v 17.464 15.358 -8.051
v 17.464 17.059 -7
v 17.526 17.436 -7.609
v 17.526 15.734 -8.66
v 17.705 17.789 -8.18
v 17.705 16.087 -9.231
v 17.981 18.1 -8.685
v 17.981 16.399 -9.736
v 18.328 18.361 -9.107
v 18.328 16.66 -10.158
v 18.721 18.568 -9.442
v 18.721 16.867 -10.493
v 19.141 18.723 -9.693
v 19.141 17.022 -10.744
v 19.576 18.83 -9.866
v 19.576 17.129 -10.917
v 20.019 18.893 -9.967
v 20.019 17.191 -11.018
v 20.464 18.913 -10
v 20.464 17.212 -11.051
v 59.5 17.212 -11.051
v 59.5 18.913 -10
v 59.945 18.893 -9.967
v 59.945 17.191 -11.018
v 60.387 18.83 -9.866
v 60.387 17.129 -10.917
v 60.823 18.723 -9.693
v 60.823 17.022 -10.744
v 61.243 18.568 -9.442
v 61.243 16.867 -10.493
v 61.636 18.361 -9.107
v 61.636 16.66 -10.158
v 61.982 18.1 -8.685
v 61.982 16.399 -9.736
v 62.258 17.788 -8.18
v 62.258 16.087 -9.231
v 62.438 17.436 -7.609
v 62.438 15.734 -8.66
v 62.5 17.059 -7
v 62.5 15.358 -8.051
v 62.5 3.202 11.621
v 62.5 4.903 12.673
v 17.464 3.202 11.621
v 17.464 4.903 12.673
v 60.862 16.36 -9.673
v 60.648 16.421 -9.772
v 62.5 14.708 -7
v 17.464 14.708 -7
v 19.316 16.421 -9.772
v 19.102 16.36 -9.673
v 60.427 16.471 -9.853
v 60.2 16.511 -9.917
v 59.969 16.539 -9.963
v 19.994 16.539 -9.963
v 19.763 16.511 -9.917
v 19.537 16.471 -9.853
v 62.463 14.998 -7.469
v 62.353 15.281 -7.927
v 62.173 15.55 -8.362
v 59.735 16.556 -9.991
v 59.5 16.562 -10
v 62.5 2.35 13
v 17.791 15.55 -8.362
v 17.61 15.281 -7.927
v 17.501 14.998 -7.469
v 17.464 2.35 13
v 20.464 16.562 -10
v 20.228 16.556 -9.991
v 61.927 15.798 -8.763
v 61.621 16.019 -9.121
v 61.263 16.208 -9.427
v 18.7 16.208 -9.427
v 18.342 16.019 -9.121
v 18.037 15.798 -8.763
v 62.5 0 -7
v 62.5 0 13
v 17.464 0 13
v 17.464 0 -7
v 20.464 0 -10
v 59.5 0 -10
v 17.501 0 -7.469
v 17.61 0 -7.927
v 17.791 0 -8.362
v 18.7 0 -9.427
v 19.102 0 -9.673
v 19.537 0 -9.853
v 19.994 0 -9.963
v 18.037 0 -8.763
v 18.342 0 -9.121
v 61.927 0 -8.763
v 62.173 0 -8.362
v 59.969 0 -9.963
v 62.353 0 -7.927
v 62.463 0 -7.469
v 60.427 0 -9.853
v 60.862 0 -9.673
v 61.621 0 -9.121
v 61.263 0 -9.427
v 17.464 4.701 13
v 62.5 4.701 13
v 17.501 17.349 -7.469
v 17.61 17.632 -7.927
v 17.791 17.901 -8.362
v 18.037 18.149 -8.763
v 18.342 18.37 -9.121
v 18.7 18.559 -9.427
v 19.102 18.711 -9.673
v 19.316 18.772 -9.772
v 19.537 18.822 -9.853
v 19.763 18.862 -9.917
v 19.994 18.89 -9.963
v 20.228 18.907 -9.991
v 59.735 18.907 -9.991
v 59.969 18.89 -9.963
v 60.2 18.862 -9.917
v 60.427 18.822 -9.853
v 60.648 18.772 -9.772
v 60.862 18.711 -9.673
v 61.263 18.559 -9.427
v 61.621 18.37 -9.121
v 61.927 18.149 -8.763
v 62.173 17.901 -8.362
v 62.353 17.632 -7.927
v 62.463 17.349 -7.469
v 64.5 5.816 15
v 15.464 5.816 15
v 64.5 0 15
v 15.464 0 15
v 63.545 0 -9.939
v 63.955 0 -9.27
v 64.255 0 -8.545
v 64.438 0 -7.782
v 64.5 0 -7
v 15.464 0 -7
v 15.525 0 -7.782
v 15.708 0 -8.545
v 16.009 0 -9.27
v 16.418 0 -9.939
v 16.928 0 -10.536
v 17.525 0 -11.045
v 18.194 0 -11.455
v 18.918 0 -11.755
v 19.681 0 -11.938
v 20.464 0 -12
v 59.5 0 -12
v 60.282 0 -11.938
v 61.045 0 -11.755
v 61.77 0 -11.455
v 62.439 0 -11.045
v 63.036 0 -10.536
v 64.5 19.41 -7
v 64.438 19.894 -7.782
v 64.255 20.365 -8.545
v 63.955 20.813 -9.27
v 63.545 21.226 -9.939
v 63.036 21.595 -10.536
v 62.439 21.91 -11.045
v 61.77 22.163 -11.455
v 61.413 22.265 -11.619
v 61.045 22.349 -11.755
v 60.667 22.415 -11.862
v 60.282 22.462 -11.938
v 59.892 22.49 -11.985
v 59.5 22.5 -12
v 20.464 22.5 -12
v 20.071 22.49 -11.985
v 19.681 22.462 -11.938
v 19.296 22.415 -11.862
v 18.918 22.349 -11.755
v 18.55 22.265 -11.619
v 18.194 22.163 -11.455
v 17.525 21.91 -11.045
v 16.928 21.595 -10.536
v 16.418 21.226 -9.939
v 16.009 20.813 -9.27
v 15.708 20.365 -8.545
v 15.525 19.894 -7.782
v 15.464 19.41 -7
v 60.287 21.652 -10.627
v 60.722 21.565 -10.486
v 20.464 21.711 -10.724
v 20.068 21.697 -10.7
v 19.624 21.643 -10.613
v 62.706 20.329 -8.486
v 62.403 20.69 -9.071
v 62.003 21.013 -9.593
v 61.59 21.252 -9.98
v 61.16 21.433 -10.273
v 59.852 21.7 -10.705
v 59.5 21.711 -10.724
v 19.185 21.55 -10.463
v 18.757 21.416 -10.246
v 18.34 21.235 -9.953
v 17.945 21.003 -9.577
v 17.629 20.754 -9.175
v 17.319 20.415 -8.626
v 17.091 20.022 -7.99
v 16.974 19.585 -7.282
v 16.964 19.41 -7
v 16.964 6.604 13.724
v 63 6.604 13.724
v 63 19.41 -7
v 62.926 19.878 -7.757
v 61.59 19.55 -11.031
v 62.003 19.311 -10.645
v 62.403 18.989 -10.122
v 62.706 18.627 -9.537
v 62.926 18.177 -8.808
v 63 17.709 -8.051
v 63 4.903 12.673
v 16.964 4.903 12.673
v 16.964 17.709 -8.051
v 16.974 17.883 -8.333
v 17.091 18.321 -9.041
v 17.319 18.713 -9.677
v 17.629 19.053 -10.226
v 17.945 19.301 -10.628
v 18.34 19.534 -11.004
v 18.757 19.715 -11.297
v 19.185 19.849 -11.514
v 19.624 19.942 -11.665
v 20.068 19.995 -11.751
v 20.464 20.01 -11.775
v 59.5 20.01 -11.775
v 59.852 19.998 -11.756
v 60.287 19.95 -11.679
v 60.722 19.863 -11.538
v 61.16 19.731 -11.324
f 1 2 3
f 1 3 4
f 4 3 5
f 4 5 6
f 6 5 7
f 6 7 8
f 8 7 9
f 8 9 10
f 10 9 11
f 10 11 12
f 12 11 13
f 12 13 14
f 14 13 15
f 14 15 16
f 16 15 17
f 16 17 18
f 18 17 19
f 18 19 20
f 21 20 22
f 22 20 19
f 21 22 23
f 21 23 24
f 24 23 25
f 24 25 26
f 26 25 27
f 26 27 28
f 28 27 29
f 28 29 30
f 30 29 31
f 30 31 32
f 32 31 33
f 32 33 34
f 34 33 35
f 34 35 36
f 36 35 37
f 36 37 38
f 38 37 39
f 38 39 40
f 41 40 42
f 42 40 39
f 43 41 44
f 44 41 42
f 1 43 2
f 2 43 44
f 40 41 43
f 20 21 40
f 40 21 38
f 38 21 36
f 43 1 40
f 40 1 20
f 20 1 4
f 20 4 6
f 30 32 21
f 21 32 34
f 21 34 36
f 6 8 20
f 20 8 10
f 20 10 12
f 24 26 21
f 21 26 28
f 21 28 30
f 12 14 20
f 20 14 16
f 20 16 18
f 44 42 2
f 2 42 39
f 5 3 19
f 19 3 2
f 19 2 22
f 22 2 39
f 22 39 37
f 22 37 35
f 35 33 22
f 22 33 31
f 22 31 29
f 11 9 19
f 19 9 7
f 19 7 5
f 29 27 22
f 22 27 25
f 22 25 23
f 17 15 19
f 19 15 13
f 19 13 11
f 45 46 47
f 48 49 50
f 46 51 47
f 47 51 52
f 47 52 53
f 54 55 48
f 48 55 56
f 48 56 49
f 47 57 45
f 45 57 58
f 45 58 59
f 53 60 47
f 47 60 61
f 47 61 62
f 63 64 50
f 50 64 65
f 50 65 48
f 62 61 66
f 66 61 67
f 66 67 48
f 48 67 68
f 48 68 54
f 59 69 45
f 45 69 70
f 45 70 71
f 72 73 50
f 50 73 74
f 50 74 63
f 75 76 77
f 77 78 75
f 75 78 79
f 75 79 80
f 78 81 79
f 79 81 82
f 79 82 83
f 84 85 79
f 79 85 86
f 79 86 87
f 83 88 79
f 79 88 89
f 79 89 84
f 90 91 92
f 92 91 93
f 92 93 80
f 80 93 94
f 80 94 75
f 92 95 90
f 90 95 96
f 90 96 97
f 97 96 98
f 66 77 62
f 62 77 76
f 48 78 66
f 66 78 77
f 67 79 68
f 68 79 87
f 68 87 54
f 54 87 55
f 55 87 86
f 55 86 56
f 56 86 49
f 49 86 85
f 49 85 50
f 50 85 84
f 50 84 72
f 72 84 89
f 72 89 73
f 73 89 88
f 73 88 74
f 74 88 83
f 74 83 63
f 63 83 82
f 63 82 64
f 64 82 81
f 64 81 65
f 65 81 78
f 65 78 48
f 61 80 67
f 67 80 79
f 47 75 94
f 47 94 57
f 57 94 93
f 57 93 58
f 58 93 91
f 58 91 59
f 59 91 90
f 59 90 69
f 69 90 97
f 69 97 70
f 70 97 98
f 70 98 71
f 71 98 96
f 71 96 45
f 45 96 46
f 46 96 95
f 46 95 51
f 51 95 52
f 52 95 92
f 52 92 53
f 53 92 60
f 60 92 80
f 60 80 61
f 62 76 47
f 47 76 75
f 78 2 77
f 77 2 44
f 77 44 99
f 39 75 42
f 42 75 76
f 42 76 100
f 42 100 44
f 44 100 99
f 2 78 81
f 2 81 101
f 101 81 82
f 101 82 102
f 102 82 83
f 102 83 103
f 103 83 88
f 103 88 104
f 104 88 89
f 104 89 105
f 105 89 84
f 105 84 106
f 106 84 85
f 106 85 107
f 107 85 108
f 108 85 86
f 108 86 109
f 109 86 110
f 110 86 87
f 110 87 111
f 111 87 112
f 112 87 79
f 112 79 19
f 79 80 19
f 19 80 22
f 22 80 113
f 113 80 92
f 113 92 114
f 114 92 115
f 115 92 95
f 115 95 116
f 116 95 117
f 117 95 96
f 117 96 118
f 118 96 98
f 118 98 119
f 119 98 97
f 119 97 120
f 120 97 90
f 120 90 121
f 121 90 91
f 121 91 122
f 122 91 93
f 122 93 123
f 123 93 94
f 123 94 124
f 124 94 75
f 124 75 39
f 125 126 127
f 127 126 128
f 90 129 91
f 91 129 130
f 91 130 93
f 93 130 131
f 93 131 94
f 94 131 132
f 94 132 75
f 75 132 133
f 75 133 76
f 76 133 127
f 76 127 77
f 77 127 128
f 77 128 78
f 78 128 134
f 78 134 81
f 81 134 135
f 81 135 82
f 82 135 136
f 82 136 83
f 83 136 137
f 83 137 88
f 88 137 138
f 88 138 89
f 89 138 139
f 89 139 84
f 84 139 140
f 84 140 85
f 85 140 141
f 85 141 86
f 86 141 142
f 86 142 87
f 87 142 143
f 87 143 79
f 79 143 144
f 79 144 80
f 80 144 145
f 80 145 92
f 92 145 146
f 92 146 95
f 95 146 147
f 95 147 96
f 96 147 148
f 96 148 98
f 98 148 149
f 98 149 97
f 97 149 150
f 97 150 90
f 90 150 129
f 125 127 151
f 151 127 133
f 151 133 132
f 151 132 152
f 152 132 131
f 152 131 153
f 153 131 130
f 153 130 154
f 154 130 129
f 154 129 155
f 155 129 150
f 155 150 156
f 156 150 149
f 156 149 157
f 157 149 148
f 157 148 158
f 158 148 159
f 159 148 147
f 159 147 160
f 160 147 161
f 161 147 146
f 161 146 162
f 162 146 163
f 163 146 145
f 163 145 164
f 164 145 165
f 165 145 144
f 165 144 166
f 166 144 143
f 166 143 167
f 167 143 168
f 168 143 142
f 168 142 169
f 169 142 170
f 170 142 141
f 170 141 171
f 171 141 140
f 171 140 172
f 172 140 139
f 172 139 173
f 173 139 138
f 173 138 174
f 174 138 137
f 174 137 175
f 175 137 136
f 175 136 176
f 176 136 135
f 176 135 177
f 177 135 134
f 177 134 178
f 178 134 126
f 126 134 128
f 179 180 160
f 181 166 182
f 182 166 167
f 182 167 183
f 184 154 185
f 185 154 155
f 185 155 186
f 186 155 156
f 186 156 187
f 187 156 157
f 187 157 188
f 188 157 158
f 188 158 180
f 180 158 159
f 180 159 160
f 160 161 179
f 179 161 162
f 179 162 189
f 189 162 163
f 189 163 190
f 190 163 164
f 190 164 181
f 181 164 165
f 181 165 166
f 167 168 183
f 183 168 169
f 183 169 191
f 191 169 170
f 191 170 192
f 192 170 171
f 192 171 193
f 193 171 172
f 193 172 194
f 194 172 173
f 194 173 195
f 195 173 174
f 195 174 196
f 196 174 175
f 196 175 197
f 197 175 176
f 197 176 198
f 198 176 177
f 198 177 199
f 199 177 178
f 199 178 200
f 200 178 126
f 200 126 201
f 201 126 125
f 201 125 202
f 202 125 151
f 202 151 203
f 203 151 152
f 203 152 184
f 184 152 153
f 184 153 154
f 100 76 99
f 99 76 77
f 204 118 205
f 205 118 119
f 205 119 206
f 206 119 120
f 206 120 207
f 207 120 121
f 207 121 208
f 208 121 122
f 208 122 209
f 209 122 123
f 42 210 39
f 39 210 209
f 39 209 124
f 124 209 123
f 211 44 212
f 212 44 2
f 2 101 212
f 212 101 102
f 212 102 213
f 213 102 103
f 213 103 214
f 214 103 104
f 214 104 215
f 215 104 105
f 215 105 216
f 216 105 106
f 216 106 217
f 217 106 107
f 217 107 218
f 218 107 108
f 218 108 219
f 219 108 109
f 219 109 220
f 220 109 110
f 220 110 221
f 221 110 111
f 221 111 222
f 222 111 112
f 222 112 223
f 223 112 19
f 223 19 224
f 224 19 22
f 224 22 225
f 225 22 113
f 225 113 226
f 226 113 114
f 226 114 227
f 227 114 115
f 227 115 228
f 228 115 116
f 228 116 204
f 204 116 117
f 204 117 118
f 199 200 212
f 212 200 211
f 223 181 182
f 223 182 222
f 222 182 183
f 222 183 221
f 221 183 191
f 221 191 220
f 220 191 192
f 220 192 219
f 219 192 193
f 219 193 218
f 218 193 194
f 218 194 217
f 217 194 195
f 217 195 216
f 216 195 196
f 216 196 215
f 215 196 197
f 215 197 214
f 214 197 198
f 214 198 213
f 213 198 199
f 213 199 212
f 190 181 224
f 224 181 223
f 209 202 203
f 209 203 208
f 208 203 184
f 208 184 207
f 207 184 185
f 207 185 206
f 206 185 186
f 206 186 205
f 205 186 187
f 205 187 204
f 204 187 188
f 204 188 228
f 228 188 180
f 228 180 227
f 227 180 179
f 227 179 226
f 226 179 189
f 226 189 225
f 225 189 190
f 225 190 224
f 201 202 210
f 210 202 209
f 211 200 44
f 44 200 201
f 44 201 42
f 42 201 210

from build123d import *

# Parameters (mm, degrees)
SKETCH1_W           = 135
SKETCH1_H           = 30
BOSS_EXTRUDE1_DEPTH = 2.5
CUT_EXTRUDE1_DEPTH  = 3.5
BOSS_EXTRUDE2_DEPTH = 25
CUT_EXTRUDE2_DEPTH  = 3.5
CUT_EXTRUDE3_DEPTH  = 133
BOSS_EXTRUDE3_DEPTH = 2
SKETCH7_W           = 2
SKETCH7_H           = 5.815799519
BOSS_EXTRUDE4_DEPTH = 45.036412
CUT_EXTRUDE4_DEPTH  = 2
BOSS_EXTRUDE6_DEPTH = 2
BOSS_EXTRUDE8_REACH = 24.5
CUT_EXTRUDE5_DEPTH  = 10


with BuildPart() as part:
    # Sketch1 → Boss-Extrude1 (new body)
    with BuildSketch(Plane(origin=(0, 0, 0), x_dir=(1, 0, 0), z_dir=(0, 1, 0))):
        Rectangle(SKETCH1_W, SKETCH1_H)
    extrude(amount=BOSS_EXTRUDE1_DEPTH)

    # Sketch2 → Cut-Extrude1 (cut, through all)
    with BuildSketch(Plane(origin=(0, 2.5, 0), x_dir=(1, 0, 0), z_dir=(0, 1, 0))):
        Polygon((-67.5, 12), (0, 14.8), (67.5, 12), (67.5, 15), (-67.5, 15), align=None)
    extrude(amount=-CUT_EXTRUDE1_DEPTH, mode=Mode.SUBTRACT)

    # Sketch3 → Boss-Extrude2 (add)
    with BuildSketch(Plane(origin=(0, 2.5, 0), x_dir=(1, 0, 0), z_dir=(0, 1, 0))):
        with BuildLine():
            Line((62.5, -15), (62.5, 7))
            ThreePointArc((62.5, 7), (61.621320344, 9.121320344), (59.5, 10))
            Line((59.5, 10), (20.463588448, 10))
            ThreePointArc((20.463588448, 10), (18.342268104, 9.121320344), (17.463588448, 7))
            Line((17.463588448, 7), (17.463588448, -15))
            Line((17.463588448, -15), (15.463588448, -15))
            Line((15.463588448, -15), (15.463588448, 7))
            ThreePointArc((15.463588448, 7), (16.928054542, 10.535533906), (20.463588448, 12))
            Line((20.463588448, 12), (59.5, 12))
            ThreePointArc((59.5, 12), (63.035533906, 10.535533906), (64.5, 7))
            Line((64.5, 7), (64.5, -15))
            Line((64.5, -15), (62.5, -15))
        make_face()
    extrude(amount=BOSS_EXTRUDE2_DEPTH)

    # Sketch4 → Cut-Extrude2 (cut, through all)
    with BuildSketch(Plane(origin=(0, 2.5, 0), x_dir=(1, 0, 0), z_dir=(0, 1, 0))):
        with BuildLine():
            Line((62.5, -15), (62.5, 7))
            ThreePointArc((62.5, 7), (61.621320344, 9.121320344), (59.5, 10))
            Line((59.5, 10), (20.463588448, 10))
            ThreePointArc((20.463588448, 10), (18.342268104, 9.121320344), (17.463588448, 7))
            Line((17.463588448, 7), (17.463588448, -15))
            Line((17.463588448, -15), (62.5, -15))
        make_face()
    extrude(amount=-CUT_EXTRUDE2_DEPTH, mode=Mode.SUBTRACT)

    # Sketch5 → Cut-Extrude3 (cut, through all)
    with BuildSketch(Plane(origin=(64.5, 0, 0), x_dir=(0, 0, -1), z_dir=(1, 0, 0))):
        Polygon((-15, 5.815799519), (12, 22.5), (12, 27.5), (-15, 27.5), align=None)
    extrude(amount=-CUT_EXTRUDE3_DEPTH, mode=Mode.SUBTRACT)

    # Sketch6 → Boss-Extrude3 (add)
    with BuildSketch(Plane(origin=(0, 10.91644621, 6.745636189), x_dir=(1, 0, 0), z_dir=(0, 0.850689093, 0.525669162))):
        with BuildLine():
            Line((62.5, -9.703149931), (62.5, 16.158237255))
            add(Edge.make_bspline(
                [(62.5, 16.158237255), (62.5, 19.684790054), (59.5, 19.684790054)],
                knots=[1.570796327, 1.570796327, 1.570796327, 3.141592654, 3.141592654, 3.141592654], degree=2, weights=[1, 0.707106781, 1]))
            Line((59.5, 19.684790054), (20.463588448, 19.684790054))
            add(Edge.make_bspline(
                [(20.463588448, 19.684790054), (17.463588448, 19.684790054), (17.463588448, 16.158237255)],
                knots=[3.141592654, 3.141592654, 3.141592654, 4.71238898, 4.71238898, 4.71238898], degree=2, weights=[1, 0.707106781, 1]))
            Line((17.463588448, 16.158237255), (17.463588448, -9.703149931))
            Line((17.463588448, -9.703149931), (62.5, -9.703149931))
        make_face()
    extrude(amount=-BOSS_EXTRUDE3_DEPTH)

    # Sketch7 → Boss-Extrude4 (add)
    with BuildSketch(Plane(origin=(17.463588448, 0, 0), x_dir=(0, 0, -1), z_dir=(1, 0, 0))):
        with Locations((-14, 2.90789976)):
            Rectangle(SKETCH7_W, SKETCH7_H)
    extrude(amount=BOSS_EXTRUDE4_DEPTH)

    # Sketch8 → Cut-Extrude4 (cut)
    with BuildSketch(Plane(origin=(0, 10.91644621, 6.745636189), x_dir=(1, 0, 0), z_dir=(0, 0.850689093, 0.525669162))):
        with BuildLine():
            Line((16.963588448, -8.203149931), (63, -8.203149931))
            Line((63, -8.203149931), (63, 16.158237255))
            add(Edge.make_bspline(
                [(63, 16.158237255), (63, 16.678430051), (62.927246406, 17.184916133), (62.706402595, 17.923598547), (62.612586146, 18.168278902), (62.388791314, 18.633558431), (62.258852125, 18.855435186), (61.959006889, 19.275346047), (61.787397581, 19.474525186), (61.412050459, 19.828509286), (61.207271339, 19.985519424), (60.75725336, 20.25137755), (60.520800183, 20.354971762), (60.022800139, 20.497837607), (59.761760868, 20.535825252), (59.5, 20.535825252)],
                knots=[0, 0, 0, 0, 0.25, 0.25, 0.375, 0.375, 0.5, 0.5, 0.625, 0.625, 0.75, 0.75, 0.875, 0.875, 1, 1, 1, 1], degree=3))
            Line((59.5, 20.535825252), (20.463588448, 20.535825252))
            add(Edge.make_bspline(
                [(20.463588448, 20.535825252), (20.202590256, 20.535825252), (19.94808239, 20.499165485), (19.575317783, 20.393356351), (19.451909017, 20.349157798), (19.214372721, 20.246481447), (19.099575132, 20.187913614), (18.766217208, 19.992117688), (18.557246112, 19.833184369), (18.181207194, 19.479944242), (18.011381469, 19.283867426), (17.708851233, 18.862163664), (17.578392986, 18.640035937), (17.35419362, 18.175882409), (17.260169716, 17.932109778), (17.111675708, 17.438316882), (17.05647927, 17.187351348), (16.982384638, 16.677667191), (16.963588448, 16.417938824), (16.963588448, 16.158237255)],
                knots=[0, 0, 0, 0, 0.125, 0.125, 0.1875, 0.1875, 0.25, 0.25, 0.375, 0.375, 0.5, 0.5, 0.625, 0.625, 0.75, 0.75, 0.875, 0.875, 1, 1, 1, 1], degree=3))
            Line((16.963588448, 16.158237255), (16.963588448, -8.203149931))
        make_face()
    extrude(amount=-CUT_EXTRUDE4_DEPTH, mode=Mode.SUBTRACT)

    # Sketch13 → Cut-Extrude5 (cut)
    with BuildSketch(Plane(origin=(0, 2.5, 0), x_dir=(1, 0, 0), z_dir=(0, 1, 0))):
        with BuildLine():
            Line((15.463588448, -15), (15.463588448, 7))
            ThreePointArc((15.463588448, 7), (16.928054542, 10.535533906), (20.463588448, 12))
            Line((20.463588448, 12), (59.5, 12))
            ThreePointArc((59.5, 12), (63.035533906, 10.535533906), (64.5, 7))
            Line((64.5, 7), (64.5, -15))
            Line((64.5, -15), (67.5, -15))
            Line((67.5, -15), (67.5, 12))
            Line((67.5, 12), (0, 14.8))
            Line((0, 14.8), (-67.5, 12))
            Line((-67.5, 12), (-67.5, -15))
            Line((-67.5, -15), (15.463588448, -15))
        make_face()
    extrude(amount=-CUT_EXTRUDE5_DEPTH, mode=Mode.SUBTRACT)


with BuildPart() as body_2:
    # Sketch10 → Boss-Extrude6 (new body)
    with BuildSketch(Plane(origin=(0, 9.215068025, 5.694297866), x_dir=(1, 0, 0), z_dir=(0, 0.850689093, 0.525669162))):
        with BuildLine():
            Line((20.463588448, 18.448923351), (59.5, 18.448923351))
            add(Edge.make_bspline(
                [(62.5, 14.922370553), (62.5, 18.448923351), (59.5, 18.448923351)],
                knots=[1.570796327, 1.570796327, 1.570796327, 3.141592654, 3.141592654, 3.141592654], degree=2, weights=[1, 0.707106781, 1]))
            Line((62.5, 14.922370553), (62.5, -8.203149931))
            Line((62.5, -8.203149931), (17.463588448, -8.203149931))
            Line((17.463588448, -8.203149931), (17.463588448, 14.922370553))
            add(Edge.make_bspline(
                [(20.463588448, 18.448923351), (17.463588448, 18.448923351), (17.463588448, 14.922370553)],
                knots=[3.141592654, 3.141592654, 3.141592654, 4.71238898, 4.71238898, 4.71238898], degree=2, weights=[1, 0.707106781, 1]))
        make_face()
    extrude(amount=-BOSS_EXTRUDE6_DEPTH)


with BuildPart() as body_3:

    # Boss-Extrude8: up to this face of the body (flat: up to its plane)
    boss_extrude8_end = Plane(body_2.part.faces().sort_by_distance((39.981794224, 10.18160471, 0.325479564))[0])
    # Sketch12 → Boss-Extrude8 (new body, up to the picked face)
    with BuildSketch(Plane.XZ, mode=Mode.PRIVATE) as boss_extrude8_sk1:
        with BuildLine():
            Line((62.5, 13), (17.463588448, 13))
            Line((17.463588448, 13), (17.463588448, -7))
            ThreePointArc((17.463588448, -7), (18.342268104, -9.121320344), (20.463588448, -10))
            Line((20.463588448, -10), (59.5, -10))
            ThreePointArc((59.5, -10), (61.621320344, -9.121320344), (62.5, -7))
            Line((62.5, -7), (62.5, 13))
        make_face()
    boss_extrude8_tool1 = split(extrude(boss_extrude8_sk1.sketch, amount=-BOSS_EXTRUDE8_REACH, mode=Mode.PRIVATE), bisect_by=boss_extrude8_end, keep=Keep.BOTH, mode=Mode.PRIVATE)
    add(boss_extrude8_tool1.solids().sort_by_distance((39.981794, 0, 1.540538))[0])


solid = Compound([part.part, body_2.part, body_3.part])
